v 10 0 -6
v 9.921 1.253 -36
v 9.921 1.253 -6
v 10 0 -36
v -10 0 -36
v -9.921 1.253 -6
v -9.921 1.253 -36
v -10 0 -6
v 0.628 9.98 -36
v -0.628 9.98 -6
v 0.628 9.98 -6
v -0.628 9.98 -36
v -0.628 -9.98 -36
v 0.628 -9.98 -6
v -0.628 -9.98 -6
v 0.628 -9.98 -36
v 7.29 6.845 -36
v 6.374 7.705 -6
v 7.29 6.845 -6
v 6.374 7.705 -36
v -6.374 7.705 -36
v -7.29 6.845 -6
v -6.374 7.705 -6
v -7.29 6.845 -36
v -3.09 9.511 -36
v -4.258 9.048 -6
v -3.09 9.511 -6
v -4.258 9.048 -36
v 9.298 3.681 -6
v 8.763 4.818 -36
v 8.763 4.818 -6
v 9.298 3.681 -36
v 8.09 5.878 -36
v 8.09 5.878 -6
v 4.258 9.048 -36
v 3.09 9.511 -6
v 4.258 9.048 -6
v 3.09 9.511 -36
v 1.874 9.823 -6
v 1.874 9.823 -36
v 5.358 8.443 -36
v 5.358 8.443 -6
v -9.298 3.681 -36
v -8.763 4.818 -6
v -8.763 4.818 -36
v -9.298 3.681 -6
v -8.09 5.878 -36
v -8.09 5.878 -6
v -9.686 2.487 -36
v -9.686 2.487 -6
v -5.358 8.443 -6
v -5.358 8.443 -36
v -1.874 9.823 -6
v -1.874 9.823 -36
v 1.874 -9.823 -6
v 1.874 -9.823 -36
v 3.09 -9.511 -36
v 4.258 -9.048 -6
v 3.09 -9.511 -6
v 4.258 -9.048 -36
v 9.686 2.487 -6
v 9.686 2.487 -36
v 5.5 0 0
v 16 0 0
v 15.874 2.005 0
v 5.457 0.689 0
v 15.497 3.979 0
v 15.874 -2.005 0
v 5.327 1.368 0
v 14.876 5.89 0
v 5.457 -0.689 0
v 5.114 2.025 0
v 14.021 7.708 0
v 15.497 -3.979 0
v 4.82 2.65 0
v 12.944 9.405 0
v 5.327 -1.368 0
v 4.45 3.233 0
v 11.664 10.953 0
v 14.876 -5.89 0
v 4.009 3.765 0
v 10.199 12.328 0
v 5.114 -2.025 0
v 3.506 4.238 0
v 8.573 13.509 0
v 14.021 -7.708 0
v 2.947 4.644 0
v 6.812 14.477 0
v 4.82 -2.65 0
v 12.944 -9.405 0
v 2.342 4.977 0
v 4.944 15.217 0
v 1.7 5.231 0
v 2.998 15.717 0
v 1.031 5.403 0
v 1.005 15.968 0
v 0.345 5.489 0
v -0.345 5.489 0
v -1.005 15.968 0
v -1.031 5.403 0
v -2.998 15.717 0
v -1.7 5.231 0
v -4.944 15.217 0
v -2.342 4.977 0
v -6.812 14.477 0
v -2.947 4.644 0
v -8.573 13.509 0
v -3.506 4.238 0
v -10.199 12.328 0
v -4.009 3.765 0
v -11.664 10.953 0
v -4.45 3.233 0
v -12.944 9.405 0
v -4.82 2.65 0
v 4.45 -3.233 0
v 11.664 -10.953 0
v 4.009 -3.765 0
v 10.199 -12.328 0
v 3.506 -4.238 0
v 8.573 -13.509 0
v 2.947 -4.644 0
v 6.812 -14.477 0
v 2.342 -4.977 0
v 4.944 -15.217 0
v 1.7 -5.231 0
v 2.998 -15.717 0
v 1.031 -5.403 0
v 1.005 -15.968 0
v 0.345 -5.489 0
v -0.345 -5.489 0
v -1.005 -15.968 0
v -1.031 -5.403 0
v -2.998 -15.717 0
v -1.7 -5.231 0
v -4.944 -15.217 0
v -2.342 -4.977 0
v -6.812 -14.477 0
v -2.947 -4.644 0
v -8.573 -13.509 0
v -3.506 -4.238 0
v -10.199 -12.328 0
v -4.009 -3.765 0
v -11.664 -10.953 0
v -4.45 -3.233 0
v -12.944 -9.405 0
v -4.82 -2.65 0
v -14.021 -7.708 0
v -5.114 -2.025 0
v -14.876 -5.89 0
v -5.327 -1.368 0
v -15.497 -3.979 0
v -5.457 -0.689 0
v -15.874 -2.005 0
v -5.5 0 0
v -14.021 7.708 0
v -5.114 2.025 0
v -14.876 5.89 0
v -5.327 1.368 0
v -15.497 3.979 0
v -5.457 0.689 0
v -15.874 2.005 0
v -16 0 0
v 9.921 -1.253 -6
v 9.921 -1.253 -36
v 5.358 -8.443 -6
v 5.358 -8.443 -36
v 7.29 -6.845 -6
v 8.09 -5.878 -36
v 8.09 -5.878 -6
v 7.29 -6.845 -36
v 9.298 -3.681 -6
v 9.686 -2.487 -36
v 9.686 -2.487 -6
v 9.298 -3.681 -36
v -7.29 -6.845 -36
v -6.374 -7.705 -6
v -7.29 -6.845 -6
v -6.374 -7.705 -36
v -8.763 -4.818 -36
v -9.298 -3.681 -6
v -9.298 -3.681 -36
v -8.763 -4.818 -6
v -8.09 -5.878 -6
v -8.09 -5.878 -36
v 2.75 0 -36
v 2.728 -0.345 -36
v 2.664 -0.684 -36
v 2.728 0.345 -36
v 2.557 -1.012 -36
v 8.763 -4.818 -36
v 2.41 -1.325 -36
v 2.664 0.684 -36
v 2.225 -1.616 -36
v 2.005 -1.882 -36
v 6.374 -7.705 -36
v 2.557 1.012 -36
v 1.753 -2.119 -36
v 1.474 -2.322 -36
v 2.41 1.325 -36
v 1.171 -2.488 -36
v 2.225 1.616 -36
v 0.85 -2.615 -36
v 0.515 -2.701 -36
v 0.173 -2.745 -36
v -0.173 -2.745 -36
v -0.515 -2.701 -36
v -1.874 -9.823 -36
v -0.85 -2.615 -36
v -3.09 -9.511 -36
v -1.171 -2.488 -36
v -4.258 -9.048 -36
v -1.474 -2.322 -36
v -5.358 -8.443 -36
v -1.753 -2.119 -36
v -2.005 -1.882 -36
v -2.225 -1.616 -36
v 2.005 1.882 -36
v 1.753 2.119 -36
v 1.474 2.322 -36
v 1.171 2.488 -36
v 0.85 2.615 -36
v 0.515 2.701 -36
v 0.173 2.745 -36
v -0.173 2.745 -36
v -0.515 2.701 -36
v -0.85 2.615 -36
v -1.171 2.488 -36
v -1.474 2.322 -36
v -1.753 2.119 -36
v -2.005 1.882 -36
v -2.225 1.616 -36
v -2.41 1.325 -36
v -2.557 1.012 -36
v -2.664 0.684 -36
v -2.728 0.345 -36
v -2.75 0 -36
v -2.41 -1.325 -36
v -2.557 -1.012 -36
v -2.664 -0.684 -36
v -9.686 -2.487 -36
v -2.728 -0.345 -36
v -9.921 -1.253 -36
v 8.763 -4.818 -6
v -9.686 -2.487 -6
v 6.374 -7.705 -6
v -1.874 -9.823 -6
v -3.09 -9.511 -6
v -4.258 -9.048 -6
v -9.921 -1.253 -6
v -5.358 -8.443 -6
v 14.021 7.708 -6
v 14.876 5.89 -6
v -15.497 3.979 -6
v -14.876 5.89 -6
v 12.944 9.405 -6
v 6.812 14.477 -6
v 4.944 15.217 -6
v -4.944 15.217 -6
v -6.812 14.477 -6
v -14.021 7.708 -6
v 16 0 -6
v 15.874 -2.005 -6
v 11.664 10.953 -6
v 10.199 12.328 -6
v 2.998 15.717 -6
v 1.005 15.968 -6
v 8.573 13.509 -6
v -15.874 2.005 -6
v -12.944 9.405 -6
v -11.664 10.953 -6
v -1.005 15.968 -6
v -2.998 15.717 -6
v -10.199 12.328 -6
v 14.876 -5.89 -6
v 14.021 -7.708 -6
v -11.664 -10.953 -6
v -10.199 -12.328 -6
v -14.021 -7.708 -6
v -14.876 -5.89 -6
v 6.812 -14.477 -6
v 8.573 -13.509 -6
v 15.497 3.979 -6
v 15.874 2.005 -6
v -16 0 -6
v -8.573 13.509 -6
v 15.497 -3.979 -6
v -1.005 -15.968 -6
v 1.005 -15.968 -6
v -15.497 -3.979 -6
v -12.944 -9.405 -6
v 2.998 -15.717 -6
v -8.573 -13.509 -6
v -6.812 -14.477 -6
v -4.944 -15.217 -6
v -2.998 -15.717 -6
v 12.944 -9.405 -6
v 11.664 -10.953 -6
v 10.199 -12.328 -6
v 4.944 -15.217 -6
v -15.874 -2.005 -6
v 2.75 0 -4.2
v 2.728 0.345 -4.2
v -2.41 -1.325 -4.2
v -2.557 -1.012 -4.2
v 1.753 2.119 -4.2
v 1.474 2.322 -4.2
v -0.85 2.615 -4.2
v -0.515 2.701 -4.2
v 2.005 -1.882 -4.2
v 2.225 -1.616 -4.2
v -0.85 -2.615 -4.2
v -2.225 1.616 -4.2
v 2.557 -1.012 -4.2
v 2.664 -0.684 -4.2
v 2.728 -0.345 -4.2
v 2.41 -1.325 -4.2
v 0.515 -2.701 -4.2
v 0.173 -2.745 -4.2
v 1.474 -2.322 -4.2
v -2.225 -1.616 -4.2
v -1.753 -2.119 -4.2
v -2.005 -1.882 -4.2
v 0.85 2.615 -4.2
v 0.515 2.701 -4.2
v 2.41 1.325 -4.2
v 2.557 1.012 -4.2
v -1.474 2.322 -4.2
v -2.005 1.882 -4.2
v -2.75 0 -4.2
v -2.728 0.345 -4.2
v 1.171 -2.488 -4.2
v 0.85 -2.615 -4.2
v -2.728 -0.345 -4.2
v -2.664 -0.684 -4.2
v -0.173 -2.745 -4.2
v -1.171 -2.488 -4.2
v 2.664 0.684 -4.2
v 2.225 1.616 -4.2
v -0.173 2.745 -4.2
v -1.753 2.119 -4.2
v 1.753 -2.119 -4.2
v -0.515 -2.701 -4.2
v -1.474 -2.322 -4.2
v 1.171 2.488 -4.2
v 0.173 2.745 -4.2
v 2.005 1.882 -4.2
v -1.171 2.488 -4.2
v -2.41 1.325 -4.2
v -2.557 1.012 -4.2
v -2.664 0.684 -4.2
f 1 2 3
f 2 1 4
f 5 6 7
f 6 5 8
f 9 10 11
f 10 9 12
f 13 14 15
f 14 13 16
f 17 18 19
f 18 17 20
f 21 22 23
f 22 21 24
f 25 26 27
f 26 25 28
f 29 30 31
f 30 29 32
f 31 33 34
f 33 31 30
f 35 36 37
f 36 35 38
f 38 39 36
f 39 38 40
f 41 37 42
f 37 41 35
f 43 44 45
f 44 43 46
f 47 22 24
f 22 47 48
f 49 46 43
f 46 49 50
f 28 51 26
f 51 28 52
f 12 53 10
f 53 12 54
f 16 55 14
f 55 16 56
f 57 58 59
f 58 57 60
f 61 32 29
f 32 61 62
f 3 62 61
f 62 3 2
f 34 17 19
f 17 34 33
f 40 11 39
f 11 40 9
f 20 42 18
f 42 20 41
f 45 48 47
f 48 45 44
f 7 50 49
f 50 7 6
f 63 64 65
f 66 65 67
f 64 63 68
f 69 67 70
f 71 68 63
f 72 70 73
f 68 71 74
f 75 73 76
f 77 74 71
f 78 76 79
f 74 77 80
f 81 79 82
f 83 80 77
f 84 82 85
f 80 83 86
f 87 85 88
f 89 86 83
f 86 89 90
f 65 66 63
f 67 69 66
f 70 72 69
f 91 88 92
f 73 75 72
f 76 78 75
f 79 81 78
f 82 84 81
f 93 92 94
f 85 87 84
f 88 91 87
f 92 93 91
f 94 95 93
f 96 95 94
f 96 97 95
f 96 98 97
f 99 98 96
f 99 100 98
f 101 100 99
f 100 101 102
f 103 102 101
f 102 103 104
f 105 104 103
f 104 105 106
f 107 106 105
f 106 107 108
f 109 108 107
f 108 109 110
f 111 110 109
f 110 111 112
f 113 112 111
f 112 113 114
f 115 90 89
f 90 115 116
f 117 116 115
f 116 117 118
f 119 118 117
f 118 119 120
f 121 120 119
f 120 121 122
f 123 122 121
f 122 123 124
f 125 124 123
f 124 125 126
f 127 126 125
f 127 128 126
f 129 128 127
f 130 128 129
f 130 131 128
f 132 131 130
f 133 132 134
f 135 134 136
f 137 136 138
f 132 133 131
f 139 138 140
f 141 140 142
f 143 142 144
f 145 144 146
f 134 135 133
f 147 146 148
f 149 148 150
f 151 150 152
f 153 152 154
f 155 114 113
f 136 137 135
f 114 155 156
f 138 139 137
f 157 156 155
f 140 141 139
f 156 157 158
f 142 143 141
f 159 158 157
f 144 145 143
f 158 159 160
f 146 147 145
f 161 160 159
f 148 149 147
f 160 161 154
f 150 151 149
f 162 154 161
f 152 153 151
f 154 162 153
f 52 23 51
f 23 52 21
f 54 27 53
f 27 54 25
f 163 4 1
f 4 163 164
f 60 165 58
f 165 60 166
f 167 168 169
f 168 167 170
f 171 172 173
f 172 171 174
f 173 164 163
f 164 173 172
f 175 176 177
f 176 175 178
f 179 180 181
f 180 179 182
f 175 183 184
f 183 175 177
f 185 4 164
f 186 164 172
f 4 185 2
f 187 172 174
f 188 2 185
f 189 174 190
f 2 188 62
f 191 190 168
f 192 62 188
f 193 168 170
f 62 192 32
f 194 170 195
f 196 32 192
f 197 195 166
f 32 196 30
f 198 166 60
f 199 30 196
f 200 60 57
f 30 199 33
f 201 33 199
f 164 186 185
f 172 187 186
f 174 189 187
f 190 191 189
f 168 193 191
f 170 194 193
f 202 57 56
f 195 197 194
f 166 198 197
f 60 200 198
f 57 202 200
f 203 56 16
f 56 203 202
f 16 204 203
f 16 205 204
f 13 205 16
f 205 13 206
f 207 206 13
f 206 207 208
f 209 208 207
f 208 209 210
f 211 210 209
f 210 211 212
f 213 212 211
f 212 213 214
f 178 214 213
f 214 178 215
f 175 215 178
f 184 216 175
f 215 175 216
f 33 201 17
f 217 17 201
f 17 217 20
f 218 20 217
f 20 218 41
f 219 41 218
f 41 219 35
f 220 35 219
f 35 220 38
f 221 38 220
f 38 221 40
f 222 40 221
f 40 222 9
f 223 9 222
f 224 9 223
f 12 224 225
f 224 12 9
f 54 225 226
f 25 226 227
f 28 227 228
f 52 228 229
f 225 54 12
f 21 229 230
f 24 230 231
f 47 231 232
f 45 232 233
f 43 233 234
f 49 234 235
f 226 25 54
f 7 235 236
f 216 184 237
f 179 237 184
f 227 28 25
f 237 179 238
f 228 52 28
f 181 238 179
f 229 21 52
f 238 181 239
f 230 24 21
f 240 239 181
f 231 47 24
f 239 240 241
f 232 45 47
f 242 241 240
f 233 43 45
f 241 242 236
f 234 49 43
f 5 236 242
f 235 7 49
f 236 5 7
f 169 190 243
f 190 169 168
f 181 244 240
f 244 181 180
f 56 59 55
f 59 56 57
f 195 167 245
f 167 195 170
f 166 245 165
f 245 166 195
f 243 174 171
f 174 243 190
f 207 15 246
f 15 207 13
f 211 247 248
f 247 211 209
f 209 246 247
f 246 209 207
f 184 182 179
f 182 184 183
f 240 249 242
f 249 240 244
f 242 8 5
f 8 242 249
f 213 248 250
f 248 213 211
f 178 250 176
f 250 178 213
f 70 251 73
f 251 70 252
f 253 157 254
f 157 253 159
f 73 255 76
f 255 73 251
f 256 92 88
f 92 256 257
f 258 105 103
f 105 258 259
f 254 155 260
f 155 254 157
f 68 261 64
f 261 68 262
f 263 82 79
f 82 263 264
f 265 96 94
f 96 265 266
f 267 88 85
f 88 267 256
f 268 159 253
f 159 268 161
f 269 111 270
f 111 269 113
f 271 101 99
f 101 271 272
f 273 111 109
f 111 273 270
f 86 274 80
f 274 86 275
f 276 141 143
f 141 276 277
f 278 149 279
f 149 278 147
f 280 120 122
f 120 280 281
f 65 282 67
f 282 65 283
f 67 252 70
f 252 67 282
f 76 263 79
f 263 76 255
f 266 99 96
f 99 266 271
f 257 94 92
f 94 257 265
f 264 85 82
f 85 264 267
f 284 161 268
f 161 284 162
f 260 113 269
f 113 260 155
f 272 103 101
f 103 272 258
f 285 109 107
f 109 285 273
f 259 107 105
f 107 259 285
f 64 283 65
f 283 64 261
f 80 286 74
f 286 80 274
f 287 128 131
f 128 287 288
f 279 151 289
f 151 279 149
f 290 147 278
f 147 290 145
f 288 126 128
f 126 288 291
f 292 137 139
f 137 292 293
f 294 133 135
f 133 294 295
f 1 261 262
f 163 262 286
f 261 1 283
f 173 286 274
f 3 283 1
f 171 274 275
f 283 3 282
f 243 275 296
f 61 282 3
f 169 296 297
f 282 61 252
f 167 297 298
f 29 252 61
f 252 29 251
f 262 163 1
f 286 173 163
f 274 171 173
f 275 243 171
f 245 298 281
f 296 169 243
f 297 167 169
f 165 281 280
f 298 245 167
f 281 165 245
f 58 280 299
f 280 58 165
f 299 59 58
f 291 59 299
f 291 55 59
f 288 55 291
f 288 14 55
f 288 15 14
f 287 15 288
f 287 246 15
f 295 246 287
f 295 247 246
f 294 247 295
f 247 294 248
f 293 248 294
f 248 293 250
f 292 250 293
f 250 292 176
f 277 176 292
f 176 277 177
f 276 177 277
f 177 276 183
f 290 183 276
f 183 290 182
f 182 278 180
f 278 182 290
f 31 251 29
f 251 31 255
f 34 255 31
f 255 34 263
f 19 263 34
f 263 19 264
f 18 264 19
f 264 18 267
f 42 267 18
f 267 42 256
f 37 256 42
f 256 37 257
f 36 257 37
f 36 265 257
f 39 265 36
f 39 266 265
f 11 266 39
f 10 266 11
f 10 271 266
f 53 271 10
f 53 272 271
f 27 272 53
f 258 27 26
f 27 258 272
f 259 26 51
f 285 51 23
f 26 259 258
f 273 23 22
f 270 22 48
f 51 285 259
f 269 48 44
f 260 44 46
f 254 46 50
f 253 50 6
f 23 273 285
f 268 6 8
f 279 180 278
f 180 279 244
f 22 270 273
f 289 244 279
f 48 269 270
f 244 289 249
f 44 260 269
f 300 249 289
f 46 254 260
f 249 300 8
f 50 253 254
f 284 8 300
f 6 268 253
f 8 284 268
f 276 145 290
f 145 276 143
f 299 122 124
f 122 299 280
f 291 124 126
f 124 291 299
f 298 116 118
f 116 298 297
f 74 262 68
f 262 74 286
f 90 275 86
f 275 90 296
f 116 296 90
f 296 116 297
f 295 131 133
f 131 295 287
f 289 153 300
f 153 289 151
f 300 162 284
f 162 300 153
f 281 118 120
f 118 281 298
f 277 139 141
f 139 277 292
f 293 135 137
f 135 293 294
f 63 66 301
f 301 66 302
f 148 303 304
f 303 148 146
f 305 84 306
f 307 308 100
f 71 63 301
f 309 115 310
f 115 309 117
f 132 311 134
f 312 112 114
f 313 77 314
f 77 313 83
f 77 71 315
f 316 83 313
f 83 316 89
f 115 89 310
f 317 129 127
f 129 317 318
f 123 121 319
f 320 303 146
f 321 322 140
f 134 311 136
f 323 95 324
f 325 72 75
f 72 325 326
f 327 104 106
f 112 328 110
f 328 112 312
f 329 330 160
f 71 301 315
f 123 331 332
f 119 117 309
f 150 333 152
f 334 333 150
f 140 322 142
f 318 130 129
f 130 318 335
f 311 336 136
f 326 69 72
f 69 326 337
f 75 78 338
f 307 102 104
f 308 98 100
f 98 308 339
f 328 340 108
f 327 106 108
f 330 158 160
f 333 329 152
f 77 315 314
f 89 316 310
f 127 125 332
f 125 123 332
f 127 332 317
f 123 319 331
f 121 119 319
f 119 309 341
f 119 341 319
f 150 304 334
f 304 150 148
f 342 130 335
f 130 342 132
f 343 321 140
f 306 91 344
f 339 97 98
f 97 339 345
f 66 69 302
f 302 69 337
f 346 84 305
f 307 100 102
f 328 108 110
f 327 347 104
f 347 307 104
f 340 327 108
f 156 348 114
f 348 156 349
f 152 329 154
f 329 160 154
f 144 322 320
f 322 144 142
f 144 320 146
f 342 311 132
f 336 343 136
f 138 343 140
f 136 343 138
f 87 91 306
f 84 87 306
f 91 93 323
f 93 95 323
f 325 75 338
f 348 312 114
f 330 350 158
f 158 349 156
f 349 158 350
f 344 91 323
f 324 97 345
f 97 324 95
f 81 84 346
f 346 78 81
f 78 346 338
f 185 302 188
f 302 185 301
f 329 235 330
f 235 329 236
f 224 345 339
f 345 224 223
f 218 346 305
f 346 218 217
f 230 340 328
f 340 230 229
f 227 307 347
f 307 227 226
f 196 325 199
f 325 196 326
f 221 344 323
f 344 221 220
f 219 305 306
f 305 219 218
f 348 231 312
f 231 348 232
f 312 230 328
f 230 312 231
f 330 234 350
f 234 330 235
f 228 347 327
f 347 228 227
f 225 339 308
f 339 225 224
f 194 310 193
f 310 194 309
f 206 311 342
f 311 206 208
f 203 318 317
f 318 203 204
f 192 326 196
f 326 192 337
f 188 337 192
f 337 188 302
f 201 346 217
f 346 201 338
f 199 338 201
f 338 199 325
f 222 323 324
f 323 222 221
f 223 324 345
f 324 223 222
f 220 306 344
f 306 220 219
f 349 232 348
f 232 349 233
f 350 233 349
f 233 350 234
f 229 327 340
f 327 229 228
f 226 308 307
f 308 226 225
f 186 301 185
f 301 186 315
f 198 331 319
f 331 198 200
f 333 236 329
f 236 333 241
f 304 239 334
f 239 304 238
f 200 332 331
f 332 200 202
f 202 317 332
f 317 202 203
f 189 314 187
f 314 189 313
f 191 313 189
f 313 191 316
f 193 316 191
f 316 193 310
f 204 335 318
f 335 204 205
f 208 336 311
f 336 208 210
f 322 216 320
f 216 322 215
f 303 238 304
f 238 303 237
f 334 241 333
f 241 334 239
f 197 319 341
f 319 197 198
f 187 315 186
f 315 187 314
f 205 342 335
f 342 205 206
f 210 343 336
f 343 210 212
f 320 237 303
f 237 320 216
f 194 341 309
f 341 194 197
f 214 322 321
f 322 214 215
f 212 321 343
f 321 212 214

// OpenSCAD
$fn = 50;


difference() {
	union() {
		translate(v = [0, 0, -36.0000000000]) {
			cylinder(h = 36, r = 10.0000000000);
		}
		translate(v = [0, 0, -6.0000000000]) {
			cylinder(h = 6, r = 16.0000000000);
		}
	}
	union() {
		translate(v = [0, 0, 0]) {
			rotate(a = [0, 0, 0]) {
				difference() {
					union() {
						#translate(v = [0, 0, -36.0000000000]) {
							cylinder(h = 36, r = 2.2500000000);
						}
						#translate(v = [0, 0, -4.2000000000]) {
							cylinder(h = 4.2000000000, r1 = 2.7500000000, r2 = 5.5000000000);
						}
						#translate(v = [0, 0, -36.0000000000]) {
							cylinder(h = 36, r = 2.7500000000);
						}
						#translate(v = [0, 0, -36.0000000000]) {
							cylinder(h = 36, r = 2.2500000000);
						}
					}
					union();
				}
			}
		}
	}
}
